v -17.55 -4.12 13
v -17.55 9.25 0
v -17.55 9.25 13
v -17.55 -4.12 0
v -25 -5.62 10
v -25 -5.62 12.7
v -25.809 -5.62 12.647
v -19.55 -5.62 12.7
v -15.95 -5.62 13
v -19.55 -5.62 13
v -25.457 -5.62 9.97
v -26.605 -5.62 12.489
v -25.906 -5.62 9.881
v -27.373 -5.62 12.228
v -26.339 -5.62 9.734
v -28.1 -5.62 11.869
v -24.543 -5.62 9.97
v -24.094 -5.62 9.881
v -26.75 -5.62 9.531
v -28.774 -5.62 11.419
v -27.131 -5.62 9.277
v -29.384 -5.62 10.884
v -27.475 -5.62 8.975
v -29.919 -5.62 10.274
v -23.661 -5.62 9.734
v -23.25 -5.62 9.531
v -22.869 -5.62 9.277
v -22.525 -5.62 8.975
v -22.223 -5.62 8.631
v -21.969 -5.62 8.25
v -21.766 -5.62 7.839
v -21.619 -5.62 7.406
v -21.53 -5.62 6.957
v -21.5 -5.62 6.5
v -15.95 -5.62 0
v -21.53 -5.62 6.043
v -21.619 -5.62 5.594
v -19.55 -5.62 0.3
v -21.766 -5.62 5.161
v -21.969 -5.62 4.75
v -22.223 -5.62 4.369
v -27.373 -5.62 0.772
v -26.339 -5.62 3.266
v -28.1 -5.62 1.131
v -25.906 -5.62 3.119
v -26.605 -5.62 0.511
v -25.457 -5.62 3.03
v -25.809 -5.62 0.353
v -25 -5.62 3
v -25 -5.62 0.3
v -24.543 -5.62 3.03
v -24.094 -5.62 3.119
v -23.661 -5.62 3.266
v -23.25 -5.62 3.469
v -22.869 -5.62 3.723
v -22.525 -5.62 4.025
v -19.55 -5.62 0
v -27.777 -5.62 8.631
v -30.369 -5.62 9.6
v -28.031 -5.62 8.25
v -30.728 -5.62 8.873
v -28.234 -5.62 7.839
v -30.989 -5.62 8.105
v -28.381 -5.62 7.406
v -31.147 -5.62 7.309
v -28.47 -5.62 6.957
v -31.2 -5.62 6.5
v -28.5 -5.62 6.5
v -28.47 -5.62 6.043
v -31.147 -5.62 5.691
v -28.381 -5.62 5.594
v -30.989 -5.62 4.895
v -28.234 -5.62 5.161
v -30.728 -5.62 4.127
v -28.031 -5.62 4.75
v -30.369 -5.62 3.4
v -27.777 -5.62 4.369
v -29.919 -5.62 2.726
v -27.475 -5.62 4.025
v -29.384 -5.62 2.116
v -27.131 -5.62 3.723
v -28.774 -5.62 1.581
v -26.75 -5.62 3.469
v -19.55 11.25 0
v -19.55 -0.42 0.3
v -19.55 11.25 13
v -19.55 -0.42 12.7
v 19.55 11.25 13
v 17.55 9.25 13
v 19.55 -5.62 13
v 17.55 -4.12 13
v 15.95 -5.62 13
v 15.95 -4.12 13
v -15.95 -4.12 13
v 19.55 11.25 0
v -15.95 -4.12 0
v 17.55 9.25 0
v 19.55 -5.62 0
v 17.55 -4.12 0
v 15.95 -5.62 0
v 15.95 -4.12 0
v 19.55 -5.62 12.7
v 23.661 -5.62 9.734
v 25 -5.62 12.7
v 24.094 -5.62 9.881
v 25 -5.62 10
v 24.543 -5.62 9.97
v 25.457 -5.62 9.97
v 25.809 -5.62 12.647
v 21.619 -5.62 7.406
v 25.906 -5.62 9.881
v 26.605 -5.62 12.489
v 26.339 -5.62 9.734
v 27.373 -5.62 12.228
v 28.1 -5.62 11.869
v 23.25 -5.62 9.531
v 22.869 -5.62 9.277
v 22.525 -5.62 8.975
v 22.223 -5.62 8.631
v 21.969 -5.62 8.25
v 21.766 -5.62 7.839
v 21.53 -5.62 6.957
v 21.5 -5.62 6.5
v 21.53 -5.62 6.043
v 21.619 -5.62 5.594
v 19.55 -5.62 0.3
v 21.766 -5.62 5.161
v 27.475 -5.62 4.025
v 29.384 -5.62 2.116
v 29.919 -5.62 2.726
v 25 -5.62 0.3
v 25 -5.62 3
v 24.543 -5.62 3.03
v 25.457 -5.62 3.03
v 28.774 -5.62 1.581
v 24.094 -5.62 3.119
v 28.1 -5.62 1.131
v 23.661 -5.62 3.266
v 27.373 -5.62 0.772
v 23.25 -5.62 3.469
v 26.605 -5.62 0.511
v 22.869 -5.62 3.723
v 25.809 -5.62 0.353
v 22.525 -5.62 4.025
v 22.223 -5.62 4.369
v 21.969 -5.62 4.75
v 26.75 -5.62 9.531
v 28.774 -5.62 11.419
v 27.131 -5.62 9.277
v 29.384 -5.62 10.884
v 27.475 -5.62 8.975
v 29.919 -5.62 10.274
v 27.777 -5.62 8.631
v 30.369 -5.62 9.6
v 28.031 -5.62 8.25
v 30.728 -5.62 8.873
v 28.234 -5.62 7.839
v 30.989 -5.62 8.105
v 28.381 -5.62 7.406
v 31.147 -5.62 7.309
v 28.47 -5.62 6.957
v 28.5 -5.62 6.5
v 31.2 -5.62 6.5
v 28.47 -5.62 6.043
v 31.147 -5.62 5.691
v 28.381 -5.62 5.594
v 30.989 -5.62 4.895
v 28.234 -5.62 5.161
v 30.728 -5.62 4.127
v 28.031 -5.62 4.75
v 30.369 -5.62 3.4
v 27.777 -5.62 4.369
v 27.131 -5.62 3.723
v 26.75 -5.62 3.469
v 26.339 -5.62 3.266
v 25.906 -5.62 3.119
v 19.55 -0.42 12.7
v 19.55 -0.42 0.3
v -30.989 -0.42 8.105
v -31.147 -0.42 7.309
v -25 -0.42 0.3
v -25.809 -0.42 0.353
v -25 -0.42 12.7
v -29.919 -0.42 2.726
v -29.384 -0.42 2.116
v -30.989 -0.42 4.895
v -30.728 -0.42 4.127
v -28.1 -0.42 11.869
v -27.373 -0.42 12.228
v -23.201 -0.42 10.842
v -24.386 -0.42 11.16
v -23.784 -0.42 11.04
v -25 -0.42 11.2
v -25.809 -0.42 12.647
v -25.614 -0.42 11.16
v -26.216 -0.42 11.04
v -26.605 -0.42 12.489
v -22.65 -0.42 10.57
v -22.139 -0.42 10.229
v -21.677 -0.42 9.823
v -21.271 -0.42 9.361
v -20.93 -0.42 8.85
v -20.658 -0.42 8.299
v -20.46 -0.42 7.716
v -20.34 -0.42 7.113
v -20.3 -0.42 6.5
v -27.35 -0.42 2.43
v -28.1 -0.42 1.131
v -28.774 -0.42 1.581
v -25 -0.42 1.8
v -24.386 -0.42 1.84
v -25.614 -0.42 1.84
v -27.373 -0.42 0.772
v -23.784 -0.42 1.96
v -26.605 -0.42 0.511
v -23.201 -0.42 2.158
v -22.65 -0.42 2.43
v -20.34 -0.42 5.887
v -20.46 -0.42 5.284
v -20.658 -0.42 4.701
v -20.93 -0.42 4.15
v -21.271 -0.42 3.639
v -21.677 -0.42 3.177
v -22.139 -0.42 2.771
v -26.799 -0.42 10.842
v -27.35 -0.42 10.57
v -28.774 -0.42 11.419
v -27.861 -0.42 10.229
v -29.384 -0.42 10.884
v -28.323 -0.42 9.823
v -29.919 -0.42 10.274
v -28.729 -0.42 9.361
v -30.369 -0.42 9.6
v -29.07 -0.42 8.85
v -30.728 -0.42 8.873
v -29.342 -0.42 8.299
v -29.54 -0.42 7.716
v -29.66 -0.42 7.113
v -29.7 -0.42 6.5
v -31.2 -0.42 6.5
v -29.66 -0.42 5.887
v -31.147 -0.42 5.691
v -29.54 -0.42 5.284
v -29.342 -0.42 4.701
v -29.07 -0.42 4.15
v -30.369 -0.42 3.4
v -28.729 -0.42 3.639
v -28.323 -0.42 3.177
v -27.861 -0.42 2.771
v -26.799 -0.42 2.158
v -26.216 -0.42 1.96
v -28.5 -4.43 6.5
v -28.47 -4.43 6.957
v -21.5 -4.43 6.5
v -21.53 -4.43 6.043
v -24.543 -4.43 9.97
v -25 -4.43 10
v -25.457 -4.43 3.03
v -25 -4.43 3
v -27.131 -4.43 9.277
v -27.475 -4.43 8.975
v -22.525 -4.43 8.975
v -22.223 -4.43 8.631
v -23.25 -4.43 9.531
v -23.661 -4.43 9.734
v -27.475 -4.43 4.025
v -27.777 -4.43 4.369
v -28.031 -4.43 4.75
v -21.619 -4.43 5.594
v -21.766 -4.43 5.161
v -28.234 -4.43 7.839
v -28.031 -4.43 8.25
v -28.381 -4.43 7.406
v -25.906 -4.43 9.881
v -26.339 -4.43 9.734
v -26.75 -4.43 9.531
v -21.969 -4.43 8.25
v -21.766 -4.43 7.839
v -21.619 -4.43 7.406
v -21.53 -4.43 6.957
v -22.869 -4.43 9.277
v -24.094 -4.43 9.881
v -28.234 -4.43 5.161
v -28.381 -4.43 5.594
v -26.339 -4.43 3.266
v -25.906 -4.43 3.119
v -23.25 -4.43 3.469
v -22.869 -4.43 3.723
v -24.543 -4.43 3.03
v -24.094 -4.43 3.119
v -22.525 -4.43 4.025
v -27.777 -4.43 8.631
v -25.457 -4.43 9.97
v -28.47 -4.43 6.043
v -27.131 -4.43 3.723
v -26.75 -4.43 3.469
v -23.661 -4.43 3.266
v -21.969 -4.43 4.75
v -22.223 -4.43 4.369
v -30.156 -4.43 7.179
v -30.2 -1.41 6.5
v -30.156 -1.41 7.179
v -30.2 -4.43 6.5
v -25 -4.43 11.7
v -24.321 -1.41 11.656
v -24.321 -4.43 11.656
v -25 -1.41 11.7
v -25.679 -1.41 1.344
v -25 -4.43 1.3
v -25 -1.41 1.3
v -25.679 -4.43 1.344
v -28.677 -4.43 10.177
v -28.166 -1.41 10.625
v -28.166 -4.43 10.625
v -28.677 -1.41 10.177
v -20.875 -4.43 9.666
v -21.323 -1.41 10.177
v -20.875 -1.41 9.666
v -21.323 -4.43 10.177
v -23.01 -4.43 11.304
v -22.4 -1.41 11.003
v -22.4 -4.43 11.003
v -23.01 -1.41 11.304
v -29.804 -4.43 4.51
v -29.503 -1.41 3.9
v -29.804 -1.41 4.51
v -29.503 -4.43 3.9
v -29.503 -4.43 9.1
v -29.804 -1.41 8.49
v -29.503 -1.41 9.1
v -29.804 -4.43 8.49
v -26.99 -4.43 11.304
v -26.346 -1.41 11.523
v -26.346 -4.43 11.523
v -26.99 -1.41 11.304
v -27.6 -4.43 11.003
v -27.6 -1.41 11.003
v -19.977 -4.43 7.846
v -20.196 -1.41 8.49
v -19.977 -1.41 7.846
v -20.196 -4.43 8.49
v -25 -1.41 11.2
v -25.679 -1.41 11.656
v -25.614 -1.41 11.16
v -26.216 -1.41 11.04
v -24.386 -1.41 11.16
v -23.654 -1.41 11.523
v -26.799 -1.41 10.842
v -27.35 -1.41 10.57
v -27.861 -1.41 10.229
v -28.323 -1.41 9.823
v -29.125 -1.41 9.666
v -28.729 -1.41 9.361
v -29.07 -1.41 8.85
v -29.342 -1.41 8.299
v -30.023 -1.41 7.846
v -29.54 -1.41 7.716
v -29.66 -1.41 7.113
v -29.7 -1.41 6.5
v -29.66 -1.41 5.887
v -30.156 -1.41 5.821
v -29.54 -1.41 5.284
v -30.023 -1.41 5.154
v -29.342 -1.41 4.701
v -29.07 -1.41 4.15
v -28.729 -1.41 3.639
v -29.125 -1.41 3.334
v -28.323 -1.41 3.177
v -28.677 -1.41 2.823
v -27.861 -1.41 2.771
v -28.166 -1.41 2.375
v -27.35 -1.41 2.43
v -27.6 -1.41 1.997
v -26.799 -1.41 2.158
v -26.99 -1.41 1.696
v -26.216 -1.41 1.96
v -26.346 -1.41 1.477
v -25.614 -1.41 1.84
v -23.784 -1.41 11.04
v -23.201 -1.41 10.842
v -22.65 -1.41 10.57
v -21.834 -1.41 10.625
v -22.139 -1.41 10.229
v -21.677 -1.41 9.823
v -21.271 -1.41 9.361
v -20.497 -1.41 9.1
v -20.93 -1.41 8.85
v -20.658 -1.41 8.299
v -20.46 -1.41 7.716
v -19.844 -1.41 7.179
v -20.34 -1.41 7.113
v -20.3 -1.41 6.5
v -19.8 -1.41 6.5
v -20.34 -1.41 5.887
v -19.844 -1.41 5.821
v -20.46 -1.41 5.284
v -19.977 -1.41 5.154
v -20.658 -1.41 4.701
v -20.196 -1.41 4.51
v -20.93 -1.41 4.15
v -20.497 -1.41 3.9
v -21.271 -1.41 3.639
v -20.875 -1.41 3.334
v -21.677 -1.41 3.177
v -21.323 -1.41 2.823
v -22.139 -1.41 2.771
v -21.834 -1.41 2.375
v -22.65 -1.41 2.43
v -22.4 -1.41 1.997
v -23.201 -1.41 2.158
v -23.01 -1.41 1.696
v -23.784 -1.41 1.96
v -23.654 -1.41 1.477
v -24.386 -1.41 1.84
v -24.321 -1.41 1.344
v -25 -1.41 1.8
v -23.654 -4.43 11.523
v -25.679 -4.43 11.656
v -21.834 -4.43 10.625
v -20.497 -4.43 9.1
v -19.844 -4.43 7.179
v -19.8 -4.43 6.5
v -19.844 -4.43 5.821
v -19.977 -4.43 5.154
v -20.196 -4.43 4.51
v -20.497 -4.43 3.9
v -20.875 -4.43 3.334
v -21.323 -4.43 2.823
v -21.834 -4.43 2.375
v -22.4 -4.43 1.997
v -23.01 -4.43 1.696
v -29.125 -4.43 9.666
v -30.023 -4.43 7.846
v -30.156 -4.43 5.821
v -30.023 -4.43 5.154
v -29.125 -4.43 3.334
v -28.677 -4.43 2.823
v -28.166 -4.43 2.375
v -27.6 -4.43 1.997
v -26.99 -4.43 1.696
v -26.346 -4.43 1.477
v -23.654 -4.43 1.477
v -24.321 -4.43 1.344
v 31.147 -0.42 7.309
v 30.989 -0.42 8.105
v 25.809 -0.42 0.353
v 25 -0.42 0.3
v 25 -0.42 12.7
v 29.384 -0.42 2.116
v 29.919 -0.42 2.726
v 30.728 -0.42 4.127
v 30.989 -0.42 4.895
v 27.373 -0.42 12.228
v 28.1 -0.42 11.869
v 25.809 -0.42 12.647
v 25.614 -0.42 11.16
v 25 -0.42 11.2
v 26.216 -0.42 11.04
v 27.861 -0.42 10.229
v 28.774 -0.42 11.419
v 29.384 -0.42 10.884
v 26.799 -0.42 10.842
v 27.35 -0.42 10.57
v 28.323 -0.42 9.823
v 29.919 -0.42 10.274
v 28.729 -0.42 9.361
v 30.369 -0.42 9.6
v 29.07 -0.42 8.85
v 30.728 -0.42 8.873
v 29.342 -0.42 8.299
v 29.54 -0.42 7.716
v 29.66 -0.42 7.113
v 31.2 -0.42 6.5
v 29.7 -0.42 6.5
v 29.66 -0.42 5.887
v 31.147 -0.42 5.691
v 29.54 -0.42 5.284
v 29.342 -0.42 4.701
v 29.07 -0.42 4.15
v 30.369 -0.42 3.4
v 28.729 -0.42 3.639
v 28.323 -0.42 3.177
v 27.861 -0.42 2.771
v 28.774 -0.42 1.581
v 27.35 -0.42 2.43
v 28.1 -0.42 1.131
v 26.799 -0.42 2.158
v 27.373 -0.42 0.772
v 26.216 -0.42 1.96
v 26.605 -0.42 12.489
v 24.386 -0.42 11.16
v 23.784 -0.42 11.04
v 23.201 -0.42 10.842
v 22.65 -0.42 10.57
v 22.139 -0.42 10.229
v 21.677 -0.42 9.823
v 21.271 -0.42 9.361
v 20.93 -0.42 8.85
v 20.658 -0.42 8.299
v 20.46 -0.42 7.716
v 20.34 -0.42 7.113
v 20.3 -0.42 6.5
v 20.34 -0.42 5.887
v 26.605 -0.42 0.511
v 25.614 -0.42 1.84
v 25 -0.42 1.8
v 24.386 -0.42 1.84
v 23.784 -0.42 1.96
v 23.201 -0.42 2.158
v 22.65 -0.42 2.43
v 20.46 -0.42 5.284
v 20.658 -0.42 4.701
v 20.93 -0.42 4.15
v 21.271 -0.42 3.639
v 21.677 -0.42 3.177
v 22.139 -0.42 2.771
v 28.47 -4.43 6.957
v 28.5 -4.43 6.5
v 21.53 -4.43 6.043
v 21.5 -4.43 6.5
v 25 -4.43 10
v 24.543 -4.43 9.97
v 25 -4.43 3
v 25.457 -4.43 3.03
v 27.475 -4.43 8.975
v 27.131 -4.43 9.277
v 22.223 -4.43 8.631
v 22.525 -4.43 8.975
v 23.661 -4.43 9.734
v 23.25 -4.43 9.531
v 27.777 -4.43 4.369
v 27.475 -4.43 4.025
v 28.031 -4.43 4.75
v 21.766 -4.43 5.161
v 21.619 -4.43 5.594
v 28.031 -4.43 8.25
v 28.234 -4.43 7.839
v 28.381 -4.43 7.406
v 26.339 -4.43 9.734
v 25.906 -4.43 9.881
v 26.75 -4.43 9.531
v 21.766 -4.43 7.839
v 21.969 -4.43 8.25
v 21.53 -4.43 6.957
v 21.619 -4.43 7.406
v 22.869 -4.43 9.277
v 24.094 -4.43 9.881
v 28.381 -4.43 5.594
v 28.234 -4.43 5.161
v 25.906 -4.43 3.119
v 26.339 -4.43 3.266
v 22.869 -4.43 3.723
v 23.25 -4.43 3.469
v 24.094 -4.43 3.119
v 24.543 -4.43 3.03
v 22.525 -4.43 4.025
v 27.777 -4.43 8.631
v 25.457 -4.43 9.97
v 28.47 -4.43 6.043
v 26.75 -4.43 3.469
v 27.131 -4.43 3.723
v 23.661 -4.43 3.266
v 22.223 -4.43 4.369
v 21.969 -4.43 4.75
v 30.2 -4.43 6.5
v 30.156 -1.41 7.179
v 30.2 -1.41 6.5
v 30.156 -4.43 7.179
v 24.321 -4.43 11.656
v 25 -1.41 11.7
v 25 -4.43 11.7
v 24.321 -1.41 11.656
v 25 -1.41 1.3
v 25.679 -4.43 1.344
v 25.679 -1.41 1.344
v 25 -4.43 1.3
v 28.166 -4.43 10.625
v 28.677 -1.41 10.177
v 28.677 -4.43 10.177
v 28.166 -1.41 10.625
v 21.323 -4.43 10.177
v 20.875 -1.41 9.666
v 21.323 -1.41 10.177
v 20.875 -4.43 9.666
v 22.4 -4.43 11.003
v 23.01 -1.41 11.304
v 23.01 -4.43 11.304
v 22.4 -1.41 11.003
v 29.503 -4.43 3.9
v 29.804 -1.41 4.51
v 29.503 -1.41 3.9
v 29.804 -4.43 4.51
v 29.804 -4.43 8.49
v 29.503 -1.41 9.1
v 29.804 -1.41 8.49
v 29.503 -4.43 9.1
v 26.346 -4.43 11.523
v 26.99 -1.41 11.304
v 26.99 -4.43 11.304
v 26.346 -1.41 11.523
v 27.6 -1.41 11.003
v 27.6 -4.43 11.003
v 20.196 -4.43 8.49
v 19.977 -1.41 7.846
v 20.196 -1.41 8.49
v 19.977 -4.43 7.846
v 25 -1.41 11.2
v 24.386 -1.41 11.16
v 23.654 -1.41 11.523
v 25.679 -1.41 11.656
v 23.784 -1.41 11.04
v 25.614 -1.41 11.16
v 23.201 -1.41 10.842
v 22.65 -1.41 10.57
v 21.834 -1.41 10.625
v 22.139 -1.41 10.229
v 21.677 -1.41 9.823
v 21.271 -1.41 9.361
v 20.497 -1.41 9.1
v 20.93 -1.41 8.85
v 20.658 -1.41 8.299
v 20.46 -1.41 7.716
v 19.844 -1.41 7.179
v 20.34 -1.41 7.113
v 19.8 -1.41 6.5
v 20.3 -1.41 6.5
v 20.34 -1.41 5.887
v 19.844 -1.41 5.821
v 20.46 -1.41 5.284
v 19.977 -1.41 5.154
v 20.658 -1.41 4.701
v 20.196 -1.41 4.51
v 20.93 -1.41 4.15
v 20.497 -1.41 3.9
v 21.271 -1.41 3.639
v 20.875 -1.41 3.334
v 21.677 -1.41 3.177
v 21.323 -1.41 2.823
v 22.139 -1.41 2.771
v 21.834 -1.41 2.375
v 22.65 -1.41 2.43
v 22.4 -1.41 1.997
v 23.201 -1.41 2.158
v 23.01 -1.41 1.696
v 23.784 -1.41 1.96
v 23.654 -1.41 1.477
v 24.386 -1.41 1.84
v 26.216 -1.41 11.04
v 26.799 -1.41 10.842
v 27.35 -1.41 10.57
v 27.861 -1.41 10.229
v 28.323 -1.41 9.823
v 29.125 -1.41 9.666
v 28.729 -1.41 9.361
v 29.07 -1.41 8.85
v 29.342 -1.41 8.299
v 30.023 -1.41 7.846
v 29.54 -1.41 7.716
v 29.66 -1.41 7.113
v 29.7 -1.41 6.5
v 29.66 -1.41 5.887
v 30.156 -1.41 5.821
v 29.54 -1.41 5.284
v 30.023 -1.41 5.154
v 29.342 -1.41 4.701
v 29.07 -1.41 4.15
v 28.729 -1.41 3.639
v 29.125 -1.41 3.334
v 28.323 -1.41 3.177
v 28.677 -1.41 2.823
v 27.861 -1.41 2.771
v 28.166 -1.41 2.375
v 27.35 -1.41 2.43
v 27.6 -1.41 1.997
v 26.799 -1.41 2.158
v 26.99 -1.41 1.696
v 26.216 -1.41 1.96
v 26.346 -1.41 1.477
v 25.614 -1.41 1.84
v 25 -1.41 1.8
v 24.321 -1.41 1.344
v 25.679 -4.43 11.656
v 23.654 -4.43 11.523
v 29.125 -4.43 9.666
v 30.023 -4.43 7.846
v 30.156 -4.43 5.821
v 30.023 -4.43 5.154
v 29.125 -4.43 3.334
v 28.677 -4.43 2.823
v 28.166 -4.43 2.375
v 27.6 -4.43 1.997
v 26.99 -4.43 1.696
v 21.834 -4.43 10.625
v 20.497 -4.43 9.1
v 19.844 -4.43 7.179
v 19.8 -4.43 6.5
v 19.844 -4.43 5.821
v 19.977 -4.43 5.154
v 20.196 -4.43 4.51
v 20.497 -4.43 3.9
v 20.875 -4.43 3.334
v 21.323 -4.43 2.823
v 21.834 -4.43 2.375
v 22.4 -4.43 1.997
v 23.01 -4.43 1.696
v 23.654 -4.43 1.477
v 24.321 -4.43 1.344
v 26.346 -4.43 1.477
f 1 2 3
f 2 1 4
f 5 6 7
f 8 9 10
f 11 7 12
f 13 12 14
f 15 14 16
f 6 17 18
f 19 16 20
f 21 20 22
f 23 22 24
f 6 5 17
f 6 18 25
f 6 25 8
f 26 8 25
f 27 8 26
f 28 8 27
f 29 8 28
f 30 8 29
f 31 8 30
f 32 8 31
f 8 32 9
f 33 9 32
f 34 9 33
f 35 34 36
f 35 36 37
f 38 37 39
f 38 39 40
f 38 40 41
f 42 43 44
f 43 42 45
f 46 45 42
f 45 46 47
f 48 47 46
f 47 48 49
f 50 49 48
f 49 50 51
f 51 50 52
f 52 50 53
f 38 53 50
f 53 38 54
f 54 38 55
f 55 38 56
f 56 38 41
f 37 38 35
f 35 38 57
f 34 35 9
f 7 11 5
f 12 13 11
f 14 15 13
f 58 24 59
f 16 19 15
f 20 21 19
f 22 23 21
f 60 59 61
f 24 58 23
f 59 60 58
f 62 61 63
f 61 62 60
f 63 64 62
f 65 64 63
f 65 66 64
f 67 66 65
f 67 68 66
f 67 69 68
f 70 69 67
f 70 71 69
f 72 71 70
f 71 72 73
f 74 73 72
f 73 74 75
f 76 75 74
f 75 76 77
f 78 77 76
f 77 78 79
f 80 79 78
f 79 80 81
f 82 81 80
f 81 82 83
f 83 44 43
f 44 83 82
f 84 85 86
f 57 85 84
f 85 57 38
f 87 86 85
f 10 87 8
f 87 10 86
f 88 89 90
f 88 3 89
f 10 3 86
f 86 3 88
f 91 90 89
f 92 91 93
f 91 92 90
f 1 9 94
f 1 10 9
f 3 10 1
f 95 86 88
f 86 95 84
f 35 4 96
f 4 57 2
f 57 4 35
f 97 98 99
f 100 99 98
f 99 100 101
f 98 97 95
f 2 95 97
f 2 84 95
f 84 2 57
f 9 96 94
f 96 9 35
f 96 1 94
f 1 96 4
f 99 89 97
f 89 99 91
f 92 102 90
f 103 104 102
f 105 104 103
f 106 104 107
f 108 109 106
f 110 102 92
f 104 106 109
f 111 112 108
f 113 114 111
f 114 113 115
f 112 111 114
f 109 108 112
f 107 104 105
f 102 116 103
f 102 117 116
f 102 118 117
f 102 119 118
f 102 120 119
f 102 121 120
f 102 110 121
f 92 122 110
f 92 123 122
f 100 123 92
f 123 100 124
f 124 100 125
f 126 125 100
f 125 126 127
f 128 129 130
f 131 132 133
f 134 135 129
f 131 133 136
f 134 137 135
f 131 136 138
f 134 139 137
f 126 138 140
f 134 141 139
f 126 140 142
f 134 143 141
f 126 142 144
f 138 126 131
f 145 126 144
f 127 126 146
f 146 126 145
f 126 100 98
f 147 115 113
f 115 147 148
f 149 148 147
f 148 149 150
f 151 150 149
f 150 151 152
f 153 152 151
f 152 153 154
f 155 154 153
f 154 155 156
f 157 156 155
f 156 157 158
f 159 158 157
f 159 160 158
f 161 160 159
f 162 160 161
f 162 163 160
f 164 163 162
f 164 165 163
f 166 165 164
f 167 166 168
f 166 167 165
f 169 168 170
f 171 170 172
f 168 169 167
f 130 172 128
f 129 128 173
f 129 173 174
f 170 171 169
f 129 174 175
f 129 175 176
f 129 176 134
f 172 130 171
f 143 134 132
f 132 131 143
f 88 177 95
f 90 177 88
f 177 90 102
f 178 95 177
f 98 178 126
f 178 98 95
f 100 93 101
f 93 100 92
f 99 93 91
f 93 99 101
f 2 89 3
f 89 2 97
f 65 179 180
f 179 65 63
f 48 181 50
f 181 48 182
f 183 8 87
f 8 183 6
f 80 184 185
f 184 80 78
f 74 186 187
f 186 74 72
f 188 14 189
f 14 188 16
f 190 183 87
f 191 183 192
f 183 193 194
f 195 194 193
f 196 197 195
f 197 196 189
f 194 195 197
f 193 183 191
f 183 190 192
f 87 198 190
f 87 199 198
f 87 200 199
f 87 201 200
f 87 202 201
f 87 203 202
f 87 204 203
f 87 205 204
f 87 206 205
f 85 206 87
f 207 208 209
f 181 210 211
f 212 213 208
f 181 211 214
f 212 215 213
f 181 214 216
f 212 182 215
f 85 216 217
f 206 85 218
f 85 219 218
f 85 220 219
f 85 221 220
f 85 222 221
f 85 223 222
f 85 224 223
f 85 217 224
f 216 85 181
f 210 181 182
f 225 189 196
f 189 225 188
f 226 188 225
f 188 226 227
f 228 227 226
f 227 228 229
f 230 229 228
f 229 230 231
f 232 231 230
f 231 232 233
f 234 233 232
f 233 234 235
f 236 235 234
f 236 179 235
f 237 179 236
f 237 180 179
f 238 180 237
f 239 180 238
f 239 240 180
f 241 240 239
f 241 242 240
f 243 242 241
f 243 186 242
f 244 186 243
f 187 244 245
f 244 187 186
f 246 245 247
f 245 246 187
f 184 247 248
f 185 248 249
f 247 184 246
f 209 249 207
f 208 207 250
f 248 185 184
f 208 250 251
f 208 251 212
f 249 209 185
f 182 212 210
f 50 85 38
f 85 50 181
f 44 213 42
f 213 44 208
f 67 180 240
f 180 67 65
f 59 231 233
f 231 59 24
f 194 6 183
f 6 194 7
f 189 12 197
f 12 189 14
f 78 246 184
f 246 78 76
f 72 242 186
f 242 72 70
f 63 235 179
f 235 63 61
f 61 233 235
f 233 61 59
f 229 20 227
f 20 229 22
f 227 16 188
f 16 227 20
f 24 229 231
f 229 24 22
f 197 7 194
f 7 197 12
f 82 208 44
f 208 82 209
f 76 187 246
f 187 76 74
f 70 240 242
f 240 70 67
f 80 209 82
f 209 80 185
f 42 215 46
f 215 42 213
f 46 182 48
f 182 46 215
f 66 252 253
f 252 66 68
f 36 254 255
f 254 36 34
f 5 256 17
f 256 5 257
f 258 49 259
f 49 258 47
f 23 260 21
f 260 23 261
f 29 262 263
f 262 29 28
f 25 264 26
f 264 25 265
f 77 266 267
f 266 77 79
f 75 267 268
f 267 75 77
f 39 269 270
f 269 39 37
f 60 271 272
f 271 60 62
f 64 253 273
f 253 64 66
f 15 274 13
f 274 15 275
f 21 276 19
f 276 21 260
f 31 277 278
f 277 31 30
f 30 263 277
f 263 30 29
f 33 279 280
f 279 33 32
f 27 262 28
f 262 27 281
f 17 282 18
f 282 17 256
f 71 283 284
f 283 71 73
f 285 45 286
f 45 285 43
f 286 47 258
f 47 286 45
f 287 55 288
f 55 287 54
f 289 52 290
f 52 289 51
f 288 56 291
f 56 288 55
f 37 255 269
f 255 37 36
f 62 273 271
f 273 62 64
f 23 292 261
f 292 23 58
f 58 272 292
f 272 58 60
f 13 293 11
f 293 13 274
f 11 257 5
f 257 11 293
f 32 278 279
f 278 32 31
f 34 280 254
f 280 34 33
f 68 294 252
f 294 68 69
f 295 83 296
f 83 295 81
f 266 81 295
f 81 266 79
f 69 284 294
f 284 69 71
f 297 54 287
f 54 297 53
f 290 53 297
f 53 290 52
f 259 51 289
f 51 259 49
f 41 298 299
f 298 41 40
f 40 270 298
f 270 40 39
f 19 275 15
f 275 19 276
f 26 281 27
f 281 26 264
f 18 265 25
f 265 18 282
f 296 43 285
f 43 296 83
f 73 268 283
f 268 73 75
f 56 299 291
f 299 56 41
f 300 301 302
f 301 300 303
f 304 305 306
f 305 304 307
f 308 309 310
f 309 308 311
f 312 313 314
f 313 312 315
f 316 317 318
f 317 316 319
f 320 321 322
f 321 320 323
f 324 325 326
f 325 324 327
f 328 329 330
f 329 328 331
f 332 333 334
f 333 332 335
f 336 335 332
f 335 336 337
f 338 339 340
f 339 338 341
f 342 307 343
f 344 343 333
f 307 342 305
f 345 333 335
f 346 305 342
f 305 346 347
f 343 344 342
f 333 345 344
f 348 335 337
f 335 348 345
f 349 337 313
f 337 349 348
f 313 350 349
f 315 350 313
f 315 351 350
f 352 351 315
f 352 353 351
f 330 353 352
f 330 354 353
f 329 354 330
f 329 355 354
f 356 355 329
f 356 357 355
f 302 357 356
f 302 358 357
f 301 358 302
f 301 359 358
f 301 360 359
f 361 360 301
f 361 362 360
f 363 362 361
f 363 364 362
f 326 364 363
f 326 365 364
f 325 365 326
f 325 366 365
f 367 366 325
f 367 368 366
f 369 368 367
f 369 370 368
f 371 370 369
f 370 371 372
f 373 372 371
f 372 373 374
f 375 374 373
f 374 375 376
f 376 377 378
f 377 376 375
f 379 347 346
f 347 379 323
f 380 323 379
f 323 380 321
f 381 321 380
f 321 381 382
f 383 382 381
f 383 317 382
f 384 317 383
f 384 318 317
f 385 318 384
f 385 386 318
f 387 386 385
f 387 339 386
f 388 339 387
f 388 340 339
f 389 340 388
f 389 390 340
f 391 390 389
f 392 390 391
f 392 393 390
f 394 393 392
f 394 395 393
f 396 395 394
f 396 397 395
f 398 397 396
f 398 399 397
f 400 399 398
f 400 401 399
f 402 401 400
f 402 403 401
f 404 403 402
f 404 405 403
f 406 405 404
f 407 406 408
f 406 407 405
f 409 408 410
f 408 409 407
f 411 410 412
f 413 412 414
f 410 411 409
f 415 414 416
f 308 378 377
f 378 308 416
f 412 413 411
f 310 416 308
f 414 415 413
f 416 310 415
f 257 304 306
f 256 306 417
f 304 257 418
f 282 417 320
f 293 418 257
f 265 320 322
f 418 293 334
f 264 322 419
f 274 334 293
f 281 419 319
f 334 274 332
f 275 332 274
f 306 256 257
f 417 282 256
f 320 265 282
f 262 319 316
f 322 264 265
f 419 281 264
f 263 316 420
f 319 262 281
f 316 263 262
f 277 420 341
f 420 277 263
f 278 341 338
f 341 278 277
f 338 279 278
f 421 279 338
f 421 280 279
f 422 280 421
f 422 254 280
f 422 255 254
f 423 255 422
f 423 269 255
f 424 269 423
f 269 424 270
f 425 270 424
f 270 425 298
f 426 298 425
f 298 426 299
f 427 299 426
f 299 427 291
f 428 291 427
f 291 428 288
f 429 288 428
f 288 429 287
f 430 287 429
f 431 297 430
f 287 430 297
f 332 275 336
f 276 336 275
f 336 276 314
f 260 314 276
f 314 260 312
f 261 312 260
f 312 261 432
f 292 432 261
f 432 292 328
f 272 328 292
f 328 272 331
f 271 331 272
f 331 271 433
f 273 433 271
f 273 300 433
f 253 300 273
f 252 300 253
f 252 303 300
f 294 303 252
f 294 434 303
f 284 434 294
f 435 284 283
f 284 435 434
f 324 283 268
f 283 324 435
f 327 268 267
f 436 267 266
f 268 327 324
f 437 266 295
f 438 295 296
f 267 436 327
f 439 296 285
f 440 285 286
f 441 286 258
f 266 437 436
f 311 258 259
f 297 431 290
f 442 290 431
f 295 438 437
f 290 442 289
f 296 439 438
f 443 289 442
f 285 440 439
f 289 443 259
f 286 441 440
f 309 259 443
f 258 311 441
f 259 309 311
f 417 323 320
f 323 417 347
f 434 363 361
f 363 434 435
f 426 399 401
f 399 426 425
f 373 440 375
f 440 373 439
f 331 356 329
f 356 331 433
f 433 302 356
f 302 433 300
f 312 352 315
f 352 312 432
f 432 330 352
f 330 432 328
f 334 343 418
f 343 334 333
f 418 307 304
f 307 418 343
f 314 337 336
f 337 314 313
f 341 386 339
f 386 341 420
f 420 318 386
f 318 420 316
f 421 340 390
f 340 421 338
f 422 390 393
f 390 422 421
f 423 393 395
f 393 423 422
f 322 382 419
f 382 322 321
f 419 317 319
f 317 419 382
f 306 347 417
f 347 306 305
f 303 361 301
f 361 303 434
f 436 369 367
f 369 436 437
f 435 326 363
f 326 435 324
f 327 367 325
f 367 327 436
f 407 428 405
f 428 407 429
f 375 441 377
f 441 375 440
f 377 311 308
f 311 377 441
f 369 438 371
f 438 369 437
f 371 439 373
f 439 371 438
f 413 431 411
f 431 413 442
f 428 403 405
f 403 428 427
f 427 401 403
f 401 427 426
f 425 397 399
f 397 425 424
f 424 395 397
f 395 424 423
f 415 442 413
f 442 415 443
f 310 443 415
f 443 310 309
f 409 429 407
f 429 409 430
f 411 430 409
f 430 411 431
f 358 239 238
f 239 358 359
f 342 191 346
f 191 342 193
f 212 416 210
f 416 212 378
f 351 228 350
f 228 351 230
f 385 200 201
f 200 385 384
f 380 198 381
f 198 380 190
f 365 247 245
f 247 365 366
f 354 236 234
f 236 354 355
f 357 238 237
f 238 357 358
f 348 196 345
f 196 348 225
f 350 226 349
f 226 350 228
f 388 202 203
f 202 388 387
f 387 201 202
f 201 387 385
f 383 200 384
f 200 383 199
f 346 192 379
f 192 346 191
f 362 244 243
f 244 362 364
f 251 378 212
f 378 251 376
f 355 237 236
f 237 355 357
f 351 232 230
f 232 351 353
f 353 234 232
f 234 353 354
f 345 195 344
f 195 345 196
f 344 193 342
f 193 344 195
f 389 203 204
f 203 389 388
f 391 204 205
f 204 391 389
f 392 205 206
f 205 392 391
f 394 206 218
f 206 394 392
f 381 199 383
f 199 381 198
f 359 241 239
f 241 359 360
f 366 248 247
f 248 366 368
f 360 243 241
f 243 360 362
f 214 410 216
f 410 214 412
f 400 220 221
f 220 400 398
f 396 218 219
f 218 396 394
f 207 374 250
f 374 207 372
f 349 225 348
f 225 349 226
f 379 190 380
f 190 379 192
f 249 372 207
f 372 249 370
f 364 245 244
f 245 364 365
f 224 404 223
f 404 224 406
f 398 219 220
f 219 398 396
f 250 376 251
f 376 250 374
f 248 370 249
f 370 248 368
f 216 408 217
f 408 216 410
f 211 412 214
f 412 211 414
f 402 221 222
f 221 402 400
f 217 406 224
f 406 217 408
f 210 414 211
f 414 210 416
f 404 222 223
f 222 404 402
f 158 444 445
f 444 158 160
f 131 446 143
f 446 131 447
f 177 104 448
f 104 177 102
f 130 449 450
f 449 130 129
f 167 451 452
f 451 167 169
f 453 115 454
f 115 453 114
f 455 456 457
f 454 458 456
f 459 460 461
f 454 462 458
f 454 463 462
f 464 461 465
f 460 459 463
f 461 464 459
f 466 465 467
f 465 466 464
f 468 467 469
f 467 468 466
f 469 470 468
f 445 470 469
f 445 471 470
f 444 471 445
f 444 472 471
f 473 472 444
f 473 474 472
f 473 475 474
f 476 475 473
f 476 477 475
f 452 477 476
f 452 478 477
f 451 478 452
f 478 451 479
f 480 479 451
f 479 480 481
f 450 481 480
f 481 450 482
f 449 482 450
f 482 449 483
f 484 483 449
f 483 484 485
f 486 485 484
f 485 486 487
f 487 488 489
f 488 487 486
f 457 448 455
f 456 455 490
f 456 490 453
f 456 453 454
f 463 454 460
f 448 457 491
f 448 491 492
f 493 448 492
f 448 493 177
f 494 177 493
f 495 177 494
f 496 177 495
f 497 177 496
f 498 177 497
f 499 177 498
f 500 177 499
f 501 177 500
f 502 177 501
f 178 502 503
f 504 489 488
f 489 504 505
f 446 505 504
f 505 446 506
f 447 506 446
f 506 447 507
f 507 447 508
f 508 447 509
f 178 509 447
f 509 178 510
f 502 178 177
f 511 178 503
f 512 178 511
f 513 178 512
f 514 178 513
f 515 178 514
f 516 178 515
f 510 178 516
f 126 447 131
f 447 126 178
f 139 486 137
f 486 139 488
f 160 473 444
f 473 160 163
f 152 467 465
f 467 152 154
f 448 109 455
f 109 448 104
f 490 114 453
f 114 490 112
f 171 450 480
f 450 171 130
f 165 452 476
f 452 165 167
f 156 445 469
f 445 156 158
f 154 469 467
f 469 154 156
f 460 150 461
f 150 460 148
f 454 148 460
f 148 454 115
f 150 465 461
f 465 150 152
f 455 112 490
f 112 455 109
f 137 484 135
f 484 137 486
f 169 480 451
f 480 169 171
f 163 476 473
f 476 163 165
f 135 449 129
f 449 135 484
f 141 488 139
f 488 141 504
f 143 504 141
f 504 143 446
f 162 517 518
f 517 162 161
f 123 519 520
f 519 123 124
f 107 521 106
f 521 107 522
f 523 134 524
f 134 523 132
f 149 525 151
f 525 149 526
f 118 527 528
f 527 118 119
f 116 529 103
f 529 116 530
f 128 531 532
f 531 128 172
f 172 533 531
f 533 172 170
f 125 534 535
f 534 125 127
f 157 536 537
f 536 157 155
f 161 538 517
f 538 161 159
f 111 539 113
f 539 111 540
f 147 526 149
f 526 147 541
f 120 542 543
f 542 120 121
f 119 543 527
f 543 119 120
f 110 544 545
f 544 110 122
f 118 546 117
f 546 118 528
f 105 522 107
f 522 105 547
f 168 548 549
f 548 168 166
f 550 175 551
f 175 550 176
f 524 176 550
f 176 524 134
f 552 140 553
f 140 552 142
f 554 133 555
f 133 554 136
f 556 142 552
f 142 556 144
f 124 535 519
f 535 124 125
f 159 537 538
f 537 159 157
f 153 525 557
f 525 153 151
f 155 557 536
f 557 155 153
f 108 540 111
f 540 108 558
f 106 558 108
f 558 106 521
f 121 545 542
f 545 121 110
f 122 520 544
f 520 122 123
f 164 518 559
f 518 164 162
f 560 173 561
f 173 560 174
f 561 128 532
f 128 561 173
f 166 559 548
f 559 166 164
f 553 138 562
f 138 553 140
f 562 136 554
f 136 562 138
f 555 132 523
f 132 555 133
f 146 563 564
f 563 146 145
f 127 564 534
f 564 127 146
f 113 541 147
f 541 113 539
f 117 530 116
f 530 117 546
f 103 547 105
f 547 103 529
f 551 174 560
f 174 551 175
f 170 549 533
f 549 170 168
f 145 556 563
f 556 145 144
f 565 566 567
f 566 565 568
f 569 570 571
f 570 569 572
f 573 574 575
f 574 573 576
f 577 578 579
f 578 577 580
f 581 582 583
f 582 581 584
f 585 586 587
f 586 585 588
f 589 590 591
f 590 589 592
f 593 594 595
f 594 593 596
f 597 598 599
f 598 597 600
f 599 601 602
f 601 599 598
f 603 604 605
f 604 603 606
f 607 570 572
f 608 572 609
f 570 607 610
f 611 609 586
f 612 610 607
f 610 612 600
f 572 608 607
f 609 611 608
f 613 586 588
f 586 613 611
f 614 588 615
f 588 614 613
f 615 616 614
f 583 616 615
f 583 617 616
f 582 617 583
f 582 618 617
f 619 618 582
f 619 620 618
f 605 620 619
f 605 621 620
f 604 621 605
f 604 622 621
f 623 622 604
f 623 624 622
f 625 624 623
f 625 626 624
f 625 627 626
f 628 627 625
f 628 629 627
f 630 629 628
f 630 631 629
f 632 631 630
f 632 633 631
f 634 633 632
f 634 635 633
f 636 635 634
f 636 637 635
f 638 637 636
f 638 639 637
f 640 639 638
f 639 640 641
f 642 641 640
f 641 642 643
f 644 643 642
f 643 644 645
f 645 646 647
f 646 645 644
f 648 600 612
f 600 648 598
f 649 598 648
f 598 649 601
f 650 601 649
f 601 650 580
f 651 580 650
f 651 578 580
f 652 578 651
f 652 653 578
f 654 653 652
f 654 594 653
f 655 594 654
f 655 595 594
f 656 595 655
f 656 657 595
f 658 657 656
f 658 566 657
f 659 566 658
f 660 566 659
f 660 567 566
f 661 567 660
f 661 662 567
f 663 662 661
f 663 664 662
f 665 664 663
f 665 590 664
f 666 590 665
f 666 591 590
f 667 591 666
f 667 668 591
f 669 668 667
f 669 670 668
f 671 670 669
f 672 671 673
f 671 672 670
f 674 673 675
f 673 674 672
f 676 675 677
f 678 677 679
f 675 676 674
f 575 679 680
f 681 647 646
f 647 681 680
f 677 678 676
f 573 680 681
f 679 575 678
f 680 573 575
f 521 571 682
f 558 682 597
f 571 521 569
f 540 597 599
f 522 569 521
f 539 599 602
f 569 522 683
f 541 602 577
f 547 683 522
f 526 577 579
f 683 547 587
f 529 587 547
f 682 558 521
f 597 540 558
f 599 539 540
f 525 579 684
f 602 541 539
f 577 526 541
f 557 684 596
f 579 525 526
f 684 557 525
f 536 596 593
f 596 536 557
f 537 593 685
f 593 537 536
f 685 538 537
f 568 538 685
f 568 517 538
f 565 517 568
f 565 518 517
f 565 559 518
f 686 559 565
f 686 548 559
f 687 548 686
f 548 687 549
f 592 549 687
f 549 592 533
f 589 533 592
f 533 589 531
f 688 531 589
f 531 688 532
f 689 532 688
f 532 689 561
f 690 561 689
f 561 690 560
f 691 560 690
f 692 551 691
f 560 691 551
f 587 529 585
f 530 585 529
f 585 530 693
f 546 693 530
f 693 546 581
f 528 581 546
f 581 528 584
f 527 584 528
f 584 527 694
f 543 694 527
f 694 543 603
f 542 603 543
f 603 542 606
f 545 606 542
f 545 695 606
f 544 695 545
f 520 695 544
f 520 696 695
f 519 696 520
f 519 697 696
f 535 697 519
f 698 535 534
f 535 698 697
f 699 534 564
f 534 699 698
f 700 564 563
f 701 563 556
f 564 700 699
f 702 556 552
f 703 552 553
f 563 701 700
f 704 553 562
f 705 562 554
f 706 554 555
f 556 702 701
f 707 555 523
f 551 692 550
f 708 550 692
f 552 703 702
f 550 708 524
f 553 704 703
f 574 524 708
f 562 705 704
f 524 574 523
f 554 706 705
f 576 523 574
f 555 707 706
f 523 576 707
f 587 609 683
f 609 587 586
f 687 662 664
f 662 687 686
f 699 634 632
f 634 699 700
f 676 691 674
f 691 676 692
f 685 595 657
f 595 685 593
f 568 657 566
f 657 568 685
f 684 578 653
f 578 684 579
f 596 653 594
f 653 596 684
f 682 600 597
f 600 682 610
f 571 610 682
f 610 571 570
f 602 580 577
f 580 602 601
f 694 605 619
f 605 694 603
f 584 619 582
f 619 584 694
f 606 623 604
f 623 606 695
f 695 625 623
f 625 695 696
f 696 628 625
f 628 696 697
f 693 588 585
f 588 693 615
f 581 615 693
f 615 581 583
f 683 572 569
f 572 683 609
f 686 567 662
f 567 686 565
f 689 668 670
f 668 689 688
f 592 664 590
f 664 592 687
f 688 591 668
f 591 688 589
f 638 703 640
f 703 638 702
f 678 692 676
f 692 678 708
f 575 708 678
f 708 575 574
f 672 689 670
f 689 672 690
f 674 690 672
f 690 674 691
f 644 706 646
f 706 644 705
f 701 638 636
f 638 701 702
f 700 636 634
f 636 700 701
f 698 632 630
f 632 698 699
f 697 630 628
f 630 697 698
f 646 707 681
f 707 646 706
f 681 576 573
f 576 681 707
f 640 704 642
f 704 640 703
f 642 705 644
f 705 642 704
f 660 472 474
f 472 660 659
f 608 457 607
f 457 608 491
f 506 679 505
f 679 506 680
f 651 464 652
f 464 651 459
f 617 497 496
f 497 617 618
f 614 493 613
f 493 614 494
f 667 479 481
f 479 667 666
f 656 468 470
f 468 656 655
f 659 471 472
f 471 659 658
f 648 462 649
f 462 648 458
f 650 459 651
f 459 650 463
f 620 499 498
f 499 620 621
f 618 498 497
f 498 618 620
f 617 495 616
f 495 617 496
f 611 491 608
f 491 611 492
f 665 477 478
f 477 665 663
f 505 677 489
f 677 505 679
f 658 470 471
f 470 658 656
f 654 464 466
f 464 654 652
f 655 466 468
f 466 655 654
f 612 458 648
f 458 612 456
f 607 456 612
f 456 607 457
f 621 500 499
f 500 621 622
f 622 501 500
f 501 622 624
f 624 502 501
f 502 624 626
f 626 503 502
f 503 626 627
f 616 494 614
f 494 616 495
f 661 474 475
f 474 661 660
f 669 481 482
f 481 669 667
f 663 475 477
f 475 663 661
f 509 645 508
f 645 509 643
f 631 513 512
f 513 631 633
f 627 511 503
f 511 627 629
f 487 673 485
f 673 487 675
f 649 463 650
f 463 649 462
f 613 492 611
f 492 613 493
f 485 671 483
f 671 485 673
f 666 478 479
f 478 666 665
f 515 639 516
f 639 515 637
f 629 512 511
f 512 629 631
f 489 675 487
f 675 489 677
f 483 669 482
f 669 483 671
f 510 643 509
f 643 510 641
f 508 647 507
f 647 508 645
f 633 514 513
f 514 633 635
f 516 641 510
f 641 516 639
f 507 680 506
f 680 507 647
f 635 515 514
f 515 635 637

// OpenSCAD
// Headlight clip: two WS2812B dots (BTF-Lighting, 10 mm dia, 3 mm thick,
// pads on the back) either side of the T-Camera, clipped around the camera
// mount's cradle (camera-mount.scad v7) so they tilt with the lens and light
// the dock marker for the onboard camera's final approach (2026-10-26).
//
// Shape: a C-band around the cradle from behind - a strap across the back
// plate, an arm down each side rail's outer face, and a small hook over the
// front edge of each rail (the rails only; nothing reaches over the board's
// face, so the OLED, buttons and lens stay clear). A pod on each arm holds a
// dot in a rear-loading pocket: the board drops in from behind against a
// front lip with a 7 mm window, and a slightly narrower rim at the back snaps
// over it. Wires leave straight out the open back.
//
// Frame: camera-mount.scad's cradle_flat - board face +Z (forward when
// mounted), board length +Y, X across. Values below are copied from it.
//
// Render:  openscad -o headlight-clip.stl headlight-clip.scad
// Print:   band edge down (print_orient), no supports, no brim.

pcb_w = 28.0; pcb_t = 1.27; comp_back = 6.0; wall = 3.0; clear = 0.3; lip = 2.0;
inner_w = pcb_w + 2 * clear;
inner_t = pcb_t + 2 * clear;
outer_w = inner_w + 2 * wall;                 // cradle width, 34.6
z0      = -(comp_back + wall);                // back face of the back plate
z_front = z0 + comp_back + wall + inner_t + lip;   // rail front edge (z0 + depth)

fit    = 0.25;   // clearance around the cradle
t      = 2.0;    // band thickness
band   = 13;     // band height along the cradle (Y); >= pod_w so the pods sit on the bed
hook   = 1.6;    // how far each hook reaches in over the rail's front edge (rail is 3 mm)
hook_t = 1.5;

dot_d   = 10.0;  // measured (Enoch)
dot_t   = 3.0;   // board + LED
window  = 7.0;   // the 5050 LED is 5 mm square
lip_t   = 1.2;
snap    = 0.3;   // back rim this much under the dot radius
dot_x   = 25;    // dot centre from the lens axis, each side (Enoch's spacing: 50 mm)
pod_w   = dot_d + 2.4;

xo = outer_w / 2 + fit;          // inner face of each arm
zb = z0 - fit;                   // inner face of the strap
zf = z_front + fit;              // hooks' inner face

$fn = 48;

module band_part() {
  // strap behind the back plate
  translate([-xo - t, 0, zb - t]) cube([2 * (xo + t), band, t]);
  for (s = [-1, 1]) mirror([s < 0 ? 1 : 0, 0, 0]) {
    // arm along the rail's outer face
    translate([xo, 0, zb - t]) cube([t, band, zf - zb + t + hook_t]);
    // hook over the rail's front edge
    translate([xo - hook, 0, zf]) cube([hook + t, band, hook_t]);
  }
}

module pod() {
  zfront = zf + hook_t;                 // pod front flush with the hooks
  depth  = lip_t + dot_t + 1.0;         // lip + dot + snap rim
  difference() {
    hull() {
      translate([dot_x, band / 2, zfront - depth]) cylinder(d = pod_w, h = depth);
      translate([xo + t - 0.01, band / 2 - pod_w / 2, zfront - depth]) cube([0.01, pod_w, depth]);
    }
    // window through the front lip
    translate([dot_x, band / 2, zfront - lip_t - 0.01]) cylinder(d = window, h = lip_t + 0.02);
    // pocket for the board, behind the lip
    translate([dot_x, band / 2, zfront - lip_t - dot_t - 0.01]) cylinder(d = dot_d + 0.4, h = dot_t + 0.02);
    // snap rim at the back: slightly under the board's diameter
    translate([dot_x, band / 2, zfront - depth - 0.01]) cylinder(d = dot_d - 2 * snap, h = 1.02);
  }
}

module part() {
  band_part();
  for (s = [-1, 1]) mirror([s < 0 ? 1 : 0, 0, 0]) pod();
}

print_orient = true;
// band edge on the bed: the C-profile prints as a straight extrusion; the
// pockets are short horizontal holes (10 mm bridges fine in PETG)
if (print_orient) rotate([90, 0, 0]) part(); else part();
